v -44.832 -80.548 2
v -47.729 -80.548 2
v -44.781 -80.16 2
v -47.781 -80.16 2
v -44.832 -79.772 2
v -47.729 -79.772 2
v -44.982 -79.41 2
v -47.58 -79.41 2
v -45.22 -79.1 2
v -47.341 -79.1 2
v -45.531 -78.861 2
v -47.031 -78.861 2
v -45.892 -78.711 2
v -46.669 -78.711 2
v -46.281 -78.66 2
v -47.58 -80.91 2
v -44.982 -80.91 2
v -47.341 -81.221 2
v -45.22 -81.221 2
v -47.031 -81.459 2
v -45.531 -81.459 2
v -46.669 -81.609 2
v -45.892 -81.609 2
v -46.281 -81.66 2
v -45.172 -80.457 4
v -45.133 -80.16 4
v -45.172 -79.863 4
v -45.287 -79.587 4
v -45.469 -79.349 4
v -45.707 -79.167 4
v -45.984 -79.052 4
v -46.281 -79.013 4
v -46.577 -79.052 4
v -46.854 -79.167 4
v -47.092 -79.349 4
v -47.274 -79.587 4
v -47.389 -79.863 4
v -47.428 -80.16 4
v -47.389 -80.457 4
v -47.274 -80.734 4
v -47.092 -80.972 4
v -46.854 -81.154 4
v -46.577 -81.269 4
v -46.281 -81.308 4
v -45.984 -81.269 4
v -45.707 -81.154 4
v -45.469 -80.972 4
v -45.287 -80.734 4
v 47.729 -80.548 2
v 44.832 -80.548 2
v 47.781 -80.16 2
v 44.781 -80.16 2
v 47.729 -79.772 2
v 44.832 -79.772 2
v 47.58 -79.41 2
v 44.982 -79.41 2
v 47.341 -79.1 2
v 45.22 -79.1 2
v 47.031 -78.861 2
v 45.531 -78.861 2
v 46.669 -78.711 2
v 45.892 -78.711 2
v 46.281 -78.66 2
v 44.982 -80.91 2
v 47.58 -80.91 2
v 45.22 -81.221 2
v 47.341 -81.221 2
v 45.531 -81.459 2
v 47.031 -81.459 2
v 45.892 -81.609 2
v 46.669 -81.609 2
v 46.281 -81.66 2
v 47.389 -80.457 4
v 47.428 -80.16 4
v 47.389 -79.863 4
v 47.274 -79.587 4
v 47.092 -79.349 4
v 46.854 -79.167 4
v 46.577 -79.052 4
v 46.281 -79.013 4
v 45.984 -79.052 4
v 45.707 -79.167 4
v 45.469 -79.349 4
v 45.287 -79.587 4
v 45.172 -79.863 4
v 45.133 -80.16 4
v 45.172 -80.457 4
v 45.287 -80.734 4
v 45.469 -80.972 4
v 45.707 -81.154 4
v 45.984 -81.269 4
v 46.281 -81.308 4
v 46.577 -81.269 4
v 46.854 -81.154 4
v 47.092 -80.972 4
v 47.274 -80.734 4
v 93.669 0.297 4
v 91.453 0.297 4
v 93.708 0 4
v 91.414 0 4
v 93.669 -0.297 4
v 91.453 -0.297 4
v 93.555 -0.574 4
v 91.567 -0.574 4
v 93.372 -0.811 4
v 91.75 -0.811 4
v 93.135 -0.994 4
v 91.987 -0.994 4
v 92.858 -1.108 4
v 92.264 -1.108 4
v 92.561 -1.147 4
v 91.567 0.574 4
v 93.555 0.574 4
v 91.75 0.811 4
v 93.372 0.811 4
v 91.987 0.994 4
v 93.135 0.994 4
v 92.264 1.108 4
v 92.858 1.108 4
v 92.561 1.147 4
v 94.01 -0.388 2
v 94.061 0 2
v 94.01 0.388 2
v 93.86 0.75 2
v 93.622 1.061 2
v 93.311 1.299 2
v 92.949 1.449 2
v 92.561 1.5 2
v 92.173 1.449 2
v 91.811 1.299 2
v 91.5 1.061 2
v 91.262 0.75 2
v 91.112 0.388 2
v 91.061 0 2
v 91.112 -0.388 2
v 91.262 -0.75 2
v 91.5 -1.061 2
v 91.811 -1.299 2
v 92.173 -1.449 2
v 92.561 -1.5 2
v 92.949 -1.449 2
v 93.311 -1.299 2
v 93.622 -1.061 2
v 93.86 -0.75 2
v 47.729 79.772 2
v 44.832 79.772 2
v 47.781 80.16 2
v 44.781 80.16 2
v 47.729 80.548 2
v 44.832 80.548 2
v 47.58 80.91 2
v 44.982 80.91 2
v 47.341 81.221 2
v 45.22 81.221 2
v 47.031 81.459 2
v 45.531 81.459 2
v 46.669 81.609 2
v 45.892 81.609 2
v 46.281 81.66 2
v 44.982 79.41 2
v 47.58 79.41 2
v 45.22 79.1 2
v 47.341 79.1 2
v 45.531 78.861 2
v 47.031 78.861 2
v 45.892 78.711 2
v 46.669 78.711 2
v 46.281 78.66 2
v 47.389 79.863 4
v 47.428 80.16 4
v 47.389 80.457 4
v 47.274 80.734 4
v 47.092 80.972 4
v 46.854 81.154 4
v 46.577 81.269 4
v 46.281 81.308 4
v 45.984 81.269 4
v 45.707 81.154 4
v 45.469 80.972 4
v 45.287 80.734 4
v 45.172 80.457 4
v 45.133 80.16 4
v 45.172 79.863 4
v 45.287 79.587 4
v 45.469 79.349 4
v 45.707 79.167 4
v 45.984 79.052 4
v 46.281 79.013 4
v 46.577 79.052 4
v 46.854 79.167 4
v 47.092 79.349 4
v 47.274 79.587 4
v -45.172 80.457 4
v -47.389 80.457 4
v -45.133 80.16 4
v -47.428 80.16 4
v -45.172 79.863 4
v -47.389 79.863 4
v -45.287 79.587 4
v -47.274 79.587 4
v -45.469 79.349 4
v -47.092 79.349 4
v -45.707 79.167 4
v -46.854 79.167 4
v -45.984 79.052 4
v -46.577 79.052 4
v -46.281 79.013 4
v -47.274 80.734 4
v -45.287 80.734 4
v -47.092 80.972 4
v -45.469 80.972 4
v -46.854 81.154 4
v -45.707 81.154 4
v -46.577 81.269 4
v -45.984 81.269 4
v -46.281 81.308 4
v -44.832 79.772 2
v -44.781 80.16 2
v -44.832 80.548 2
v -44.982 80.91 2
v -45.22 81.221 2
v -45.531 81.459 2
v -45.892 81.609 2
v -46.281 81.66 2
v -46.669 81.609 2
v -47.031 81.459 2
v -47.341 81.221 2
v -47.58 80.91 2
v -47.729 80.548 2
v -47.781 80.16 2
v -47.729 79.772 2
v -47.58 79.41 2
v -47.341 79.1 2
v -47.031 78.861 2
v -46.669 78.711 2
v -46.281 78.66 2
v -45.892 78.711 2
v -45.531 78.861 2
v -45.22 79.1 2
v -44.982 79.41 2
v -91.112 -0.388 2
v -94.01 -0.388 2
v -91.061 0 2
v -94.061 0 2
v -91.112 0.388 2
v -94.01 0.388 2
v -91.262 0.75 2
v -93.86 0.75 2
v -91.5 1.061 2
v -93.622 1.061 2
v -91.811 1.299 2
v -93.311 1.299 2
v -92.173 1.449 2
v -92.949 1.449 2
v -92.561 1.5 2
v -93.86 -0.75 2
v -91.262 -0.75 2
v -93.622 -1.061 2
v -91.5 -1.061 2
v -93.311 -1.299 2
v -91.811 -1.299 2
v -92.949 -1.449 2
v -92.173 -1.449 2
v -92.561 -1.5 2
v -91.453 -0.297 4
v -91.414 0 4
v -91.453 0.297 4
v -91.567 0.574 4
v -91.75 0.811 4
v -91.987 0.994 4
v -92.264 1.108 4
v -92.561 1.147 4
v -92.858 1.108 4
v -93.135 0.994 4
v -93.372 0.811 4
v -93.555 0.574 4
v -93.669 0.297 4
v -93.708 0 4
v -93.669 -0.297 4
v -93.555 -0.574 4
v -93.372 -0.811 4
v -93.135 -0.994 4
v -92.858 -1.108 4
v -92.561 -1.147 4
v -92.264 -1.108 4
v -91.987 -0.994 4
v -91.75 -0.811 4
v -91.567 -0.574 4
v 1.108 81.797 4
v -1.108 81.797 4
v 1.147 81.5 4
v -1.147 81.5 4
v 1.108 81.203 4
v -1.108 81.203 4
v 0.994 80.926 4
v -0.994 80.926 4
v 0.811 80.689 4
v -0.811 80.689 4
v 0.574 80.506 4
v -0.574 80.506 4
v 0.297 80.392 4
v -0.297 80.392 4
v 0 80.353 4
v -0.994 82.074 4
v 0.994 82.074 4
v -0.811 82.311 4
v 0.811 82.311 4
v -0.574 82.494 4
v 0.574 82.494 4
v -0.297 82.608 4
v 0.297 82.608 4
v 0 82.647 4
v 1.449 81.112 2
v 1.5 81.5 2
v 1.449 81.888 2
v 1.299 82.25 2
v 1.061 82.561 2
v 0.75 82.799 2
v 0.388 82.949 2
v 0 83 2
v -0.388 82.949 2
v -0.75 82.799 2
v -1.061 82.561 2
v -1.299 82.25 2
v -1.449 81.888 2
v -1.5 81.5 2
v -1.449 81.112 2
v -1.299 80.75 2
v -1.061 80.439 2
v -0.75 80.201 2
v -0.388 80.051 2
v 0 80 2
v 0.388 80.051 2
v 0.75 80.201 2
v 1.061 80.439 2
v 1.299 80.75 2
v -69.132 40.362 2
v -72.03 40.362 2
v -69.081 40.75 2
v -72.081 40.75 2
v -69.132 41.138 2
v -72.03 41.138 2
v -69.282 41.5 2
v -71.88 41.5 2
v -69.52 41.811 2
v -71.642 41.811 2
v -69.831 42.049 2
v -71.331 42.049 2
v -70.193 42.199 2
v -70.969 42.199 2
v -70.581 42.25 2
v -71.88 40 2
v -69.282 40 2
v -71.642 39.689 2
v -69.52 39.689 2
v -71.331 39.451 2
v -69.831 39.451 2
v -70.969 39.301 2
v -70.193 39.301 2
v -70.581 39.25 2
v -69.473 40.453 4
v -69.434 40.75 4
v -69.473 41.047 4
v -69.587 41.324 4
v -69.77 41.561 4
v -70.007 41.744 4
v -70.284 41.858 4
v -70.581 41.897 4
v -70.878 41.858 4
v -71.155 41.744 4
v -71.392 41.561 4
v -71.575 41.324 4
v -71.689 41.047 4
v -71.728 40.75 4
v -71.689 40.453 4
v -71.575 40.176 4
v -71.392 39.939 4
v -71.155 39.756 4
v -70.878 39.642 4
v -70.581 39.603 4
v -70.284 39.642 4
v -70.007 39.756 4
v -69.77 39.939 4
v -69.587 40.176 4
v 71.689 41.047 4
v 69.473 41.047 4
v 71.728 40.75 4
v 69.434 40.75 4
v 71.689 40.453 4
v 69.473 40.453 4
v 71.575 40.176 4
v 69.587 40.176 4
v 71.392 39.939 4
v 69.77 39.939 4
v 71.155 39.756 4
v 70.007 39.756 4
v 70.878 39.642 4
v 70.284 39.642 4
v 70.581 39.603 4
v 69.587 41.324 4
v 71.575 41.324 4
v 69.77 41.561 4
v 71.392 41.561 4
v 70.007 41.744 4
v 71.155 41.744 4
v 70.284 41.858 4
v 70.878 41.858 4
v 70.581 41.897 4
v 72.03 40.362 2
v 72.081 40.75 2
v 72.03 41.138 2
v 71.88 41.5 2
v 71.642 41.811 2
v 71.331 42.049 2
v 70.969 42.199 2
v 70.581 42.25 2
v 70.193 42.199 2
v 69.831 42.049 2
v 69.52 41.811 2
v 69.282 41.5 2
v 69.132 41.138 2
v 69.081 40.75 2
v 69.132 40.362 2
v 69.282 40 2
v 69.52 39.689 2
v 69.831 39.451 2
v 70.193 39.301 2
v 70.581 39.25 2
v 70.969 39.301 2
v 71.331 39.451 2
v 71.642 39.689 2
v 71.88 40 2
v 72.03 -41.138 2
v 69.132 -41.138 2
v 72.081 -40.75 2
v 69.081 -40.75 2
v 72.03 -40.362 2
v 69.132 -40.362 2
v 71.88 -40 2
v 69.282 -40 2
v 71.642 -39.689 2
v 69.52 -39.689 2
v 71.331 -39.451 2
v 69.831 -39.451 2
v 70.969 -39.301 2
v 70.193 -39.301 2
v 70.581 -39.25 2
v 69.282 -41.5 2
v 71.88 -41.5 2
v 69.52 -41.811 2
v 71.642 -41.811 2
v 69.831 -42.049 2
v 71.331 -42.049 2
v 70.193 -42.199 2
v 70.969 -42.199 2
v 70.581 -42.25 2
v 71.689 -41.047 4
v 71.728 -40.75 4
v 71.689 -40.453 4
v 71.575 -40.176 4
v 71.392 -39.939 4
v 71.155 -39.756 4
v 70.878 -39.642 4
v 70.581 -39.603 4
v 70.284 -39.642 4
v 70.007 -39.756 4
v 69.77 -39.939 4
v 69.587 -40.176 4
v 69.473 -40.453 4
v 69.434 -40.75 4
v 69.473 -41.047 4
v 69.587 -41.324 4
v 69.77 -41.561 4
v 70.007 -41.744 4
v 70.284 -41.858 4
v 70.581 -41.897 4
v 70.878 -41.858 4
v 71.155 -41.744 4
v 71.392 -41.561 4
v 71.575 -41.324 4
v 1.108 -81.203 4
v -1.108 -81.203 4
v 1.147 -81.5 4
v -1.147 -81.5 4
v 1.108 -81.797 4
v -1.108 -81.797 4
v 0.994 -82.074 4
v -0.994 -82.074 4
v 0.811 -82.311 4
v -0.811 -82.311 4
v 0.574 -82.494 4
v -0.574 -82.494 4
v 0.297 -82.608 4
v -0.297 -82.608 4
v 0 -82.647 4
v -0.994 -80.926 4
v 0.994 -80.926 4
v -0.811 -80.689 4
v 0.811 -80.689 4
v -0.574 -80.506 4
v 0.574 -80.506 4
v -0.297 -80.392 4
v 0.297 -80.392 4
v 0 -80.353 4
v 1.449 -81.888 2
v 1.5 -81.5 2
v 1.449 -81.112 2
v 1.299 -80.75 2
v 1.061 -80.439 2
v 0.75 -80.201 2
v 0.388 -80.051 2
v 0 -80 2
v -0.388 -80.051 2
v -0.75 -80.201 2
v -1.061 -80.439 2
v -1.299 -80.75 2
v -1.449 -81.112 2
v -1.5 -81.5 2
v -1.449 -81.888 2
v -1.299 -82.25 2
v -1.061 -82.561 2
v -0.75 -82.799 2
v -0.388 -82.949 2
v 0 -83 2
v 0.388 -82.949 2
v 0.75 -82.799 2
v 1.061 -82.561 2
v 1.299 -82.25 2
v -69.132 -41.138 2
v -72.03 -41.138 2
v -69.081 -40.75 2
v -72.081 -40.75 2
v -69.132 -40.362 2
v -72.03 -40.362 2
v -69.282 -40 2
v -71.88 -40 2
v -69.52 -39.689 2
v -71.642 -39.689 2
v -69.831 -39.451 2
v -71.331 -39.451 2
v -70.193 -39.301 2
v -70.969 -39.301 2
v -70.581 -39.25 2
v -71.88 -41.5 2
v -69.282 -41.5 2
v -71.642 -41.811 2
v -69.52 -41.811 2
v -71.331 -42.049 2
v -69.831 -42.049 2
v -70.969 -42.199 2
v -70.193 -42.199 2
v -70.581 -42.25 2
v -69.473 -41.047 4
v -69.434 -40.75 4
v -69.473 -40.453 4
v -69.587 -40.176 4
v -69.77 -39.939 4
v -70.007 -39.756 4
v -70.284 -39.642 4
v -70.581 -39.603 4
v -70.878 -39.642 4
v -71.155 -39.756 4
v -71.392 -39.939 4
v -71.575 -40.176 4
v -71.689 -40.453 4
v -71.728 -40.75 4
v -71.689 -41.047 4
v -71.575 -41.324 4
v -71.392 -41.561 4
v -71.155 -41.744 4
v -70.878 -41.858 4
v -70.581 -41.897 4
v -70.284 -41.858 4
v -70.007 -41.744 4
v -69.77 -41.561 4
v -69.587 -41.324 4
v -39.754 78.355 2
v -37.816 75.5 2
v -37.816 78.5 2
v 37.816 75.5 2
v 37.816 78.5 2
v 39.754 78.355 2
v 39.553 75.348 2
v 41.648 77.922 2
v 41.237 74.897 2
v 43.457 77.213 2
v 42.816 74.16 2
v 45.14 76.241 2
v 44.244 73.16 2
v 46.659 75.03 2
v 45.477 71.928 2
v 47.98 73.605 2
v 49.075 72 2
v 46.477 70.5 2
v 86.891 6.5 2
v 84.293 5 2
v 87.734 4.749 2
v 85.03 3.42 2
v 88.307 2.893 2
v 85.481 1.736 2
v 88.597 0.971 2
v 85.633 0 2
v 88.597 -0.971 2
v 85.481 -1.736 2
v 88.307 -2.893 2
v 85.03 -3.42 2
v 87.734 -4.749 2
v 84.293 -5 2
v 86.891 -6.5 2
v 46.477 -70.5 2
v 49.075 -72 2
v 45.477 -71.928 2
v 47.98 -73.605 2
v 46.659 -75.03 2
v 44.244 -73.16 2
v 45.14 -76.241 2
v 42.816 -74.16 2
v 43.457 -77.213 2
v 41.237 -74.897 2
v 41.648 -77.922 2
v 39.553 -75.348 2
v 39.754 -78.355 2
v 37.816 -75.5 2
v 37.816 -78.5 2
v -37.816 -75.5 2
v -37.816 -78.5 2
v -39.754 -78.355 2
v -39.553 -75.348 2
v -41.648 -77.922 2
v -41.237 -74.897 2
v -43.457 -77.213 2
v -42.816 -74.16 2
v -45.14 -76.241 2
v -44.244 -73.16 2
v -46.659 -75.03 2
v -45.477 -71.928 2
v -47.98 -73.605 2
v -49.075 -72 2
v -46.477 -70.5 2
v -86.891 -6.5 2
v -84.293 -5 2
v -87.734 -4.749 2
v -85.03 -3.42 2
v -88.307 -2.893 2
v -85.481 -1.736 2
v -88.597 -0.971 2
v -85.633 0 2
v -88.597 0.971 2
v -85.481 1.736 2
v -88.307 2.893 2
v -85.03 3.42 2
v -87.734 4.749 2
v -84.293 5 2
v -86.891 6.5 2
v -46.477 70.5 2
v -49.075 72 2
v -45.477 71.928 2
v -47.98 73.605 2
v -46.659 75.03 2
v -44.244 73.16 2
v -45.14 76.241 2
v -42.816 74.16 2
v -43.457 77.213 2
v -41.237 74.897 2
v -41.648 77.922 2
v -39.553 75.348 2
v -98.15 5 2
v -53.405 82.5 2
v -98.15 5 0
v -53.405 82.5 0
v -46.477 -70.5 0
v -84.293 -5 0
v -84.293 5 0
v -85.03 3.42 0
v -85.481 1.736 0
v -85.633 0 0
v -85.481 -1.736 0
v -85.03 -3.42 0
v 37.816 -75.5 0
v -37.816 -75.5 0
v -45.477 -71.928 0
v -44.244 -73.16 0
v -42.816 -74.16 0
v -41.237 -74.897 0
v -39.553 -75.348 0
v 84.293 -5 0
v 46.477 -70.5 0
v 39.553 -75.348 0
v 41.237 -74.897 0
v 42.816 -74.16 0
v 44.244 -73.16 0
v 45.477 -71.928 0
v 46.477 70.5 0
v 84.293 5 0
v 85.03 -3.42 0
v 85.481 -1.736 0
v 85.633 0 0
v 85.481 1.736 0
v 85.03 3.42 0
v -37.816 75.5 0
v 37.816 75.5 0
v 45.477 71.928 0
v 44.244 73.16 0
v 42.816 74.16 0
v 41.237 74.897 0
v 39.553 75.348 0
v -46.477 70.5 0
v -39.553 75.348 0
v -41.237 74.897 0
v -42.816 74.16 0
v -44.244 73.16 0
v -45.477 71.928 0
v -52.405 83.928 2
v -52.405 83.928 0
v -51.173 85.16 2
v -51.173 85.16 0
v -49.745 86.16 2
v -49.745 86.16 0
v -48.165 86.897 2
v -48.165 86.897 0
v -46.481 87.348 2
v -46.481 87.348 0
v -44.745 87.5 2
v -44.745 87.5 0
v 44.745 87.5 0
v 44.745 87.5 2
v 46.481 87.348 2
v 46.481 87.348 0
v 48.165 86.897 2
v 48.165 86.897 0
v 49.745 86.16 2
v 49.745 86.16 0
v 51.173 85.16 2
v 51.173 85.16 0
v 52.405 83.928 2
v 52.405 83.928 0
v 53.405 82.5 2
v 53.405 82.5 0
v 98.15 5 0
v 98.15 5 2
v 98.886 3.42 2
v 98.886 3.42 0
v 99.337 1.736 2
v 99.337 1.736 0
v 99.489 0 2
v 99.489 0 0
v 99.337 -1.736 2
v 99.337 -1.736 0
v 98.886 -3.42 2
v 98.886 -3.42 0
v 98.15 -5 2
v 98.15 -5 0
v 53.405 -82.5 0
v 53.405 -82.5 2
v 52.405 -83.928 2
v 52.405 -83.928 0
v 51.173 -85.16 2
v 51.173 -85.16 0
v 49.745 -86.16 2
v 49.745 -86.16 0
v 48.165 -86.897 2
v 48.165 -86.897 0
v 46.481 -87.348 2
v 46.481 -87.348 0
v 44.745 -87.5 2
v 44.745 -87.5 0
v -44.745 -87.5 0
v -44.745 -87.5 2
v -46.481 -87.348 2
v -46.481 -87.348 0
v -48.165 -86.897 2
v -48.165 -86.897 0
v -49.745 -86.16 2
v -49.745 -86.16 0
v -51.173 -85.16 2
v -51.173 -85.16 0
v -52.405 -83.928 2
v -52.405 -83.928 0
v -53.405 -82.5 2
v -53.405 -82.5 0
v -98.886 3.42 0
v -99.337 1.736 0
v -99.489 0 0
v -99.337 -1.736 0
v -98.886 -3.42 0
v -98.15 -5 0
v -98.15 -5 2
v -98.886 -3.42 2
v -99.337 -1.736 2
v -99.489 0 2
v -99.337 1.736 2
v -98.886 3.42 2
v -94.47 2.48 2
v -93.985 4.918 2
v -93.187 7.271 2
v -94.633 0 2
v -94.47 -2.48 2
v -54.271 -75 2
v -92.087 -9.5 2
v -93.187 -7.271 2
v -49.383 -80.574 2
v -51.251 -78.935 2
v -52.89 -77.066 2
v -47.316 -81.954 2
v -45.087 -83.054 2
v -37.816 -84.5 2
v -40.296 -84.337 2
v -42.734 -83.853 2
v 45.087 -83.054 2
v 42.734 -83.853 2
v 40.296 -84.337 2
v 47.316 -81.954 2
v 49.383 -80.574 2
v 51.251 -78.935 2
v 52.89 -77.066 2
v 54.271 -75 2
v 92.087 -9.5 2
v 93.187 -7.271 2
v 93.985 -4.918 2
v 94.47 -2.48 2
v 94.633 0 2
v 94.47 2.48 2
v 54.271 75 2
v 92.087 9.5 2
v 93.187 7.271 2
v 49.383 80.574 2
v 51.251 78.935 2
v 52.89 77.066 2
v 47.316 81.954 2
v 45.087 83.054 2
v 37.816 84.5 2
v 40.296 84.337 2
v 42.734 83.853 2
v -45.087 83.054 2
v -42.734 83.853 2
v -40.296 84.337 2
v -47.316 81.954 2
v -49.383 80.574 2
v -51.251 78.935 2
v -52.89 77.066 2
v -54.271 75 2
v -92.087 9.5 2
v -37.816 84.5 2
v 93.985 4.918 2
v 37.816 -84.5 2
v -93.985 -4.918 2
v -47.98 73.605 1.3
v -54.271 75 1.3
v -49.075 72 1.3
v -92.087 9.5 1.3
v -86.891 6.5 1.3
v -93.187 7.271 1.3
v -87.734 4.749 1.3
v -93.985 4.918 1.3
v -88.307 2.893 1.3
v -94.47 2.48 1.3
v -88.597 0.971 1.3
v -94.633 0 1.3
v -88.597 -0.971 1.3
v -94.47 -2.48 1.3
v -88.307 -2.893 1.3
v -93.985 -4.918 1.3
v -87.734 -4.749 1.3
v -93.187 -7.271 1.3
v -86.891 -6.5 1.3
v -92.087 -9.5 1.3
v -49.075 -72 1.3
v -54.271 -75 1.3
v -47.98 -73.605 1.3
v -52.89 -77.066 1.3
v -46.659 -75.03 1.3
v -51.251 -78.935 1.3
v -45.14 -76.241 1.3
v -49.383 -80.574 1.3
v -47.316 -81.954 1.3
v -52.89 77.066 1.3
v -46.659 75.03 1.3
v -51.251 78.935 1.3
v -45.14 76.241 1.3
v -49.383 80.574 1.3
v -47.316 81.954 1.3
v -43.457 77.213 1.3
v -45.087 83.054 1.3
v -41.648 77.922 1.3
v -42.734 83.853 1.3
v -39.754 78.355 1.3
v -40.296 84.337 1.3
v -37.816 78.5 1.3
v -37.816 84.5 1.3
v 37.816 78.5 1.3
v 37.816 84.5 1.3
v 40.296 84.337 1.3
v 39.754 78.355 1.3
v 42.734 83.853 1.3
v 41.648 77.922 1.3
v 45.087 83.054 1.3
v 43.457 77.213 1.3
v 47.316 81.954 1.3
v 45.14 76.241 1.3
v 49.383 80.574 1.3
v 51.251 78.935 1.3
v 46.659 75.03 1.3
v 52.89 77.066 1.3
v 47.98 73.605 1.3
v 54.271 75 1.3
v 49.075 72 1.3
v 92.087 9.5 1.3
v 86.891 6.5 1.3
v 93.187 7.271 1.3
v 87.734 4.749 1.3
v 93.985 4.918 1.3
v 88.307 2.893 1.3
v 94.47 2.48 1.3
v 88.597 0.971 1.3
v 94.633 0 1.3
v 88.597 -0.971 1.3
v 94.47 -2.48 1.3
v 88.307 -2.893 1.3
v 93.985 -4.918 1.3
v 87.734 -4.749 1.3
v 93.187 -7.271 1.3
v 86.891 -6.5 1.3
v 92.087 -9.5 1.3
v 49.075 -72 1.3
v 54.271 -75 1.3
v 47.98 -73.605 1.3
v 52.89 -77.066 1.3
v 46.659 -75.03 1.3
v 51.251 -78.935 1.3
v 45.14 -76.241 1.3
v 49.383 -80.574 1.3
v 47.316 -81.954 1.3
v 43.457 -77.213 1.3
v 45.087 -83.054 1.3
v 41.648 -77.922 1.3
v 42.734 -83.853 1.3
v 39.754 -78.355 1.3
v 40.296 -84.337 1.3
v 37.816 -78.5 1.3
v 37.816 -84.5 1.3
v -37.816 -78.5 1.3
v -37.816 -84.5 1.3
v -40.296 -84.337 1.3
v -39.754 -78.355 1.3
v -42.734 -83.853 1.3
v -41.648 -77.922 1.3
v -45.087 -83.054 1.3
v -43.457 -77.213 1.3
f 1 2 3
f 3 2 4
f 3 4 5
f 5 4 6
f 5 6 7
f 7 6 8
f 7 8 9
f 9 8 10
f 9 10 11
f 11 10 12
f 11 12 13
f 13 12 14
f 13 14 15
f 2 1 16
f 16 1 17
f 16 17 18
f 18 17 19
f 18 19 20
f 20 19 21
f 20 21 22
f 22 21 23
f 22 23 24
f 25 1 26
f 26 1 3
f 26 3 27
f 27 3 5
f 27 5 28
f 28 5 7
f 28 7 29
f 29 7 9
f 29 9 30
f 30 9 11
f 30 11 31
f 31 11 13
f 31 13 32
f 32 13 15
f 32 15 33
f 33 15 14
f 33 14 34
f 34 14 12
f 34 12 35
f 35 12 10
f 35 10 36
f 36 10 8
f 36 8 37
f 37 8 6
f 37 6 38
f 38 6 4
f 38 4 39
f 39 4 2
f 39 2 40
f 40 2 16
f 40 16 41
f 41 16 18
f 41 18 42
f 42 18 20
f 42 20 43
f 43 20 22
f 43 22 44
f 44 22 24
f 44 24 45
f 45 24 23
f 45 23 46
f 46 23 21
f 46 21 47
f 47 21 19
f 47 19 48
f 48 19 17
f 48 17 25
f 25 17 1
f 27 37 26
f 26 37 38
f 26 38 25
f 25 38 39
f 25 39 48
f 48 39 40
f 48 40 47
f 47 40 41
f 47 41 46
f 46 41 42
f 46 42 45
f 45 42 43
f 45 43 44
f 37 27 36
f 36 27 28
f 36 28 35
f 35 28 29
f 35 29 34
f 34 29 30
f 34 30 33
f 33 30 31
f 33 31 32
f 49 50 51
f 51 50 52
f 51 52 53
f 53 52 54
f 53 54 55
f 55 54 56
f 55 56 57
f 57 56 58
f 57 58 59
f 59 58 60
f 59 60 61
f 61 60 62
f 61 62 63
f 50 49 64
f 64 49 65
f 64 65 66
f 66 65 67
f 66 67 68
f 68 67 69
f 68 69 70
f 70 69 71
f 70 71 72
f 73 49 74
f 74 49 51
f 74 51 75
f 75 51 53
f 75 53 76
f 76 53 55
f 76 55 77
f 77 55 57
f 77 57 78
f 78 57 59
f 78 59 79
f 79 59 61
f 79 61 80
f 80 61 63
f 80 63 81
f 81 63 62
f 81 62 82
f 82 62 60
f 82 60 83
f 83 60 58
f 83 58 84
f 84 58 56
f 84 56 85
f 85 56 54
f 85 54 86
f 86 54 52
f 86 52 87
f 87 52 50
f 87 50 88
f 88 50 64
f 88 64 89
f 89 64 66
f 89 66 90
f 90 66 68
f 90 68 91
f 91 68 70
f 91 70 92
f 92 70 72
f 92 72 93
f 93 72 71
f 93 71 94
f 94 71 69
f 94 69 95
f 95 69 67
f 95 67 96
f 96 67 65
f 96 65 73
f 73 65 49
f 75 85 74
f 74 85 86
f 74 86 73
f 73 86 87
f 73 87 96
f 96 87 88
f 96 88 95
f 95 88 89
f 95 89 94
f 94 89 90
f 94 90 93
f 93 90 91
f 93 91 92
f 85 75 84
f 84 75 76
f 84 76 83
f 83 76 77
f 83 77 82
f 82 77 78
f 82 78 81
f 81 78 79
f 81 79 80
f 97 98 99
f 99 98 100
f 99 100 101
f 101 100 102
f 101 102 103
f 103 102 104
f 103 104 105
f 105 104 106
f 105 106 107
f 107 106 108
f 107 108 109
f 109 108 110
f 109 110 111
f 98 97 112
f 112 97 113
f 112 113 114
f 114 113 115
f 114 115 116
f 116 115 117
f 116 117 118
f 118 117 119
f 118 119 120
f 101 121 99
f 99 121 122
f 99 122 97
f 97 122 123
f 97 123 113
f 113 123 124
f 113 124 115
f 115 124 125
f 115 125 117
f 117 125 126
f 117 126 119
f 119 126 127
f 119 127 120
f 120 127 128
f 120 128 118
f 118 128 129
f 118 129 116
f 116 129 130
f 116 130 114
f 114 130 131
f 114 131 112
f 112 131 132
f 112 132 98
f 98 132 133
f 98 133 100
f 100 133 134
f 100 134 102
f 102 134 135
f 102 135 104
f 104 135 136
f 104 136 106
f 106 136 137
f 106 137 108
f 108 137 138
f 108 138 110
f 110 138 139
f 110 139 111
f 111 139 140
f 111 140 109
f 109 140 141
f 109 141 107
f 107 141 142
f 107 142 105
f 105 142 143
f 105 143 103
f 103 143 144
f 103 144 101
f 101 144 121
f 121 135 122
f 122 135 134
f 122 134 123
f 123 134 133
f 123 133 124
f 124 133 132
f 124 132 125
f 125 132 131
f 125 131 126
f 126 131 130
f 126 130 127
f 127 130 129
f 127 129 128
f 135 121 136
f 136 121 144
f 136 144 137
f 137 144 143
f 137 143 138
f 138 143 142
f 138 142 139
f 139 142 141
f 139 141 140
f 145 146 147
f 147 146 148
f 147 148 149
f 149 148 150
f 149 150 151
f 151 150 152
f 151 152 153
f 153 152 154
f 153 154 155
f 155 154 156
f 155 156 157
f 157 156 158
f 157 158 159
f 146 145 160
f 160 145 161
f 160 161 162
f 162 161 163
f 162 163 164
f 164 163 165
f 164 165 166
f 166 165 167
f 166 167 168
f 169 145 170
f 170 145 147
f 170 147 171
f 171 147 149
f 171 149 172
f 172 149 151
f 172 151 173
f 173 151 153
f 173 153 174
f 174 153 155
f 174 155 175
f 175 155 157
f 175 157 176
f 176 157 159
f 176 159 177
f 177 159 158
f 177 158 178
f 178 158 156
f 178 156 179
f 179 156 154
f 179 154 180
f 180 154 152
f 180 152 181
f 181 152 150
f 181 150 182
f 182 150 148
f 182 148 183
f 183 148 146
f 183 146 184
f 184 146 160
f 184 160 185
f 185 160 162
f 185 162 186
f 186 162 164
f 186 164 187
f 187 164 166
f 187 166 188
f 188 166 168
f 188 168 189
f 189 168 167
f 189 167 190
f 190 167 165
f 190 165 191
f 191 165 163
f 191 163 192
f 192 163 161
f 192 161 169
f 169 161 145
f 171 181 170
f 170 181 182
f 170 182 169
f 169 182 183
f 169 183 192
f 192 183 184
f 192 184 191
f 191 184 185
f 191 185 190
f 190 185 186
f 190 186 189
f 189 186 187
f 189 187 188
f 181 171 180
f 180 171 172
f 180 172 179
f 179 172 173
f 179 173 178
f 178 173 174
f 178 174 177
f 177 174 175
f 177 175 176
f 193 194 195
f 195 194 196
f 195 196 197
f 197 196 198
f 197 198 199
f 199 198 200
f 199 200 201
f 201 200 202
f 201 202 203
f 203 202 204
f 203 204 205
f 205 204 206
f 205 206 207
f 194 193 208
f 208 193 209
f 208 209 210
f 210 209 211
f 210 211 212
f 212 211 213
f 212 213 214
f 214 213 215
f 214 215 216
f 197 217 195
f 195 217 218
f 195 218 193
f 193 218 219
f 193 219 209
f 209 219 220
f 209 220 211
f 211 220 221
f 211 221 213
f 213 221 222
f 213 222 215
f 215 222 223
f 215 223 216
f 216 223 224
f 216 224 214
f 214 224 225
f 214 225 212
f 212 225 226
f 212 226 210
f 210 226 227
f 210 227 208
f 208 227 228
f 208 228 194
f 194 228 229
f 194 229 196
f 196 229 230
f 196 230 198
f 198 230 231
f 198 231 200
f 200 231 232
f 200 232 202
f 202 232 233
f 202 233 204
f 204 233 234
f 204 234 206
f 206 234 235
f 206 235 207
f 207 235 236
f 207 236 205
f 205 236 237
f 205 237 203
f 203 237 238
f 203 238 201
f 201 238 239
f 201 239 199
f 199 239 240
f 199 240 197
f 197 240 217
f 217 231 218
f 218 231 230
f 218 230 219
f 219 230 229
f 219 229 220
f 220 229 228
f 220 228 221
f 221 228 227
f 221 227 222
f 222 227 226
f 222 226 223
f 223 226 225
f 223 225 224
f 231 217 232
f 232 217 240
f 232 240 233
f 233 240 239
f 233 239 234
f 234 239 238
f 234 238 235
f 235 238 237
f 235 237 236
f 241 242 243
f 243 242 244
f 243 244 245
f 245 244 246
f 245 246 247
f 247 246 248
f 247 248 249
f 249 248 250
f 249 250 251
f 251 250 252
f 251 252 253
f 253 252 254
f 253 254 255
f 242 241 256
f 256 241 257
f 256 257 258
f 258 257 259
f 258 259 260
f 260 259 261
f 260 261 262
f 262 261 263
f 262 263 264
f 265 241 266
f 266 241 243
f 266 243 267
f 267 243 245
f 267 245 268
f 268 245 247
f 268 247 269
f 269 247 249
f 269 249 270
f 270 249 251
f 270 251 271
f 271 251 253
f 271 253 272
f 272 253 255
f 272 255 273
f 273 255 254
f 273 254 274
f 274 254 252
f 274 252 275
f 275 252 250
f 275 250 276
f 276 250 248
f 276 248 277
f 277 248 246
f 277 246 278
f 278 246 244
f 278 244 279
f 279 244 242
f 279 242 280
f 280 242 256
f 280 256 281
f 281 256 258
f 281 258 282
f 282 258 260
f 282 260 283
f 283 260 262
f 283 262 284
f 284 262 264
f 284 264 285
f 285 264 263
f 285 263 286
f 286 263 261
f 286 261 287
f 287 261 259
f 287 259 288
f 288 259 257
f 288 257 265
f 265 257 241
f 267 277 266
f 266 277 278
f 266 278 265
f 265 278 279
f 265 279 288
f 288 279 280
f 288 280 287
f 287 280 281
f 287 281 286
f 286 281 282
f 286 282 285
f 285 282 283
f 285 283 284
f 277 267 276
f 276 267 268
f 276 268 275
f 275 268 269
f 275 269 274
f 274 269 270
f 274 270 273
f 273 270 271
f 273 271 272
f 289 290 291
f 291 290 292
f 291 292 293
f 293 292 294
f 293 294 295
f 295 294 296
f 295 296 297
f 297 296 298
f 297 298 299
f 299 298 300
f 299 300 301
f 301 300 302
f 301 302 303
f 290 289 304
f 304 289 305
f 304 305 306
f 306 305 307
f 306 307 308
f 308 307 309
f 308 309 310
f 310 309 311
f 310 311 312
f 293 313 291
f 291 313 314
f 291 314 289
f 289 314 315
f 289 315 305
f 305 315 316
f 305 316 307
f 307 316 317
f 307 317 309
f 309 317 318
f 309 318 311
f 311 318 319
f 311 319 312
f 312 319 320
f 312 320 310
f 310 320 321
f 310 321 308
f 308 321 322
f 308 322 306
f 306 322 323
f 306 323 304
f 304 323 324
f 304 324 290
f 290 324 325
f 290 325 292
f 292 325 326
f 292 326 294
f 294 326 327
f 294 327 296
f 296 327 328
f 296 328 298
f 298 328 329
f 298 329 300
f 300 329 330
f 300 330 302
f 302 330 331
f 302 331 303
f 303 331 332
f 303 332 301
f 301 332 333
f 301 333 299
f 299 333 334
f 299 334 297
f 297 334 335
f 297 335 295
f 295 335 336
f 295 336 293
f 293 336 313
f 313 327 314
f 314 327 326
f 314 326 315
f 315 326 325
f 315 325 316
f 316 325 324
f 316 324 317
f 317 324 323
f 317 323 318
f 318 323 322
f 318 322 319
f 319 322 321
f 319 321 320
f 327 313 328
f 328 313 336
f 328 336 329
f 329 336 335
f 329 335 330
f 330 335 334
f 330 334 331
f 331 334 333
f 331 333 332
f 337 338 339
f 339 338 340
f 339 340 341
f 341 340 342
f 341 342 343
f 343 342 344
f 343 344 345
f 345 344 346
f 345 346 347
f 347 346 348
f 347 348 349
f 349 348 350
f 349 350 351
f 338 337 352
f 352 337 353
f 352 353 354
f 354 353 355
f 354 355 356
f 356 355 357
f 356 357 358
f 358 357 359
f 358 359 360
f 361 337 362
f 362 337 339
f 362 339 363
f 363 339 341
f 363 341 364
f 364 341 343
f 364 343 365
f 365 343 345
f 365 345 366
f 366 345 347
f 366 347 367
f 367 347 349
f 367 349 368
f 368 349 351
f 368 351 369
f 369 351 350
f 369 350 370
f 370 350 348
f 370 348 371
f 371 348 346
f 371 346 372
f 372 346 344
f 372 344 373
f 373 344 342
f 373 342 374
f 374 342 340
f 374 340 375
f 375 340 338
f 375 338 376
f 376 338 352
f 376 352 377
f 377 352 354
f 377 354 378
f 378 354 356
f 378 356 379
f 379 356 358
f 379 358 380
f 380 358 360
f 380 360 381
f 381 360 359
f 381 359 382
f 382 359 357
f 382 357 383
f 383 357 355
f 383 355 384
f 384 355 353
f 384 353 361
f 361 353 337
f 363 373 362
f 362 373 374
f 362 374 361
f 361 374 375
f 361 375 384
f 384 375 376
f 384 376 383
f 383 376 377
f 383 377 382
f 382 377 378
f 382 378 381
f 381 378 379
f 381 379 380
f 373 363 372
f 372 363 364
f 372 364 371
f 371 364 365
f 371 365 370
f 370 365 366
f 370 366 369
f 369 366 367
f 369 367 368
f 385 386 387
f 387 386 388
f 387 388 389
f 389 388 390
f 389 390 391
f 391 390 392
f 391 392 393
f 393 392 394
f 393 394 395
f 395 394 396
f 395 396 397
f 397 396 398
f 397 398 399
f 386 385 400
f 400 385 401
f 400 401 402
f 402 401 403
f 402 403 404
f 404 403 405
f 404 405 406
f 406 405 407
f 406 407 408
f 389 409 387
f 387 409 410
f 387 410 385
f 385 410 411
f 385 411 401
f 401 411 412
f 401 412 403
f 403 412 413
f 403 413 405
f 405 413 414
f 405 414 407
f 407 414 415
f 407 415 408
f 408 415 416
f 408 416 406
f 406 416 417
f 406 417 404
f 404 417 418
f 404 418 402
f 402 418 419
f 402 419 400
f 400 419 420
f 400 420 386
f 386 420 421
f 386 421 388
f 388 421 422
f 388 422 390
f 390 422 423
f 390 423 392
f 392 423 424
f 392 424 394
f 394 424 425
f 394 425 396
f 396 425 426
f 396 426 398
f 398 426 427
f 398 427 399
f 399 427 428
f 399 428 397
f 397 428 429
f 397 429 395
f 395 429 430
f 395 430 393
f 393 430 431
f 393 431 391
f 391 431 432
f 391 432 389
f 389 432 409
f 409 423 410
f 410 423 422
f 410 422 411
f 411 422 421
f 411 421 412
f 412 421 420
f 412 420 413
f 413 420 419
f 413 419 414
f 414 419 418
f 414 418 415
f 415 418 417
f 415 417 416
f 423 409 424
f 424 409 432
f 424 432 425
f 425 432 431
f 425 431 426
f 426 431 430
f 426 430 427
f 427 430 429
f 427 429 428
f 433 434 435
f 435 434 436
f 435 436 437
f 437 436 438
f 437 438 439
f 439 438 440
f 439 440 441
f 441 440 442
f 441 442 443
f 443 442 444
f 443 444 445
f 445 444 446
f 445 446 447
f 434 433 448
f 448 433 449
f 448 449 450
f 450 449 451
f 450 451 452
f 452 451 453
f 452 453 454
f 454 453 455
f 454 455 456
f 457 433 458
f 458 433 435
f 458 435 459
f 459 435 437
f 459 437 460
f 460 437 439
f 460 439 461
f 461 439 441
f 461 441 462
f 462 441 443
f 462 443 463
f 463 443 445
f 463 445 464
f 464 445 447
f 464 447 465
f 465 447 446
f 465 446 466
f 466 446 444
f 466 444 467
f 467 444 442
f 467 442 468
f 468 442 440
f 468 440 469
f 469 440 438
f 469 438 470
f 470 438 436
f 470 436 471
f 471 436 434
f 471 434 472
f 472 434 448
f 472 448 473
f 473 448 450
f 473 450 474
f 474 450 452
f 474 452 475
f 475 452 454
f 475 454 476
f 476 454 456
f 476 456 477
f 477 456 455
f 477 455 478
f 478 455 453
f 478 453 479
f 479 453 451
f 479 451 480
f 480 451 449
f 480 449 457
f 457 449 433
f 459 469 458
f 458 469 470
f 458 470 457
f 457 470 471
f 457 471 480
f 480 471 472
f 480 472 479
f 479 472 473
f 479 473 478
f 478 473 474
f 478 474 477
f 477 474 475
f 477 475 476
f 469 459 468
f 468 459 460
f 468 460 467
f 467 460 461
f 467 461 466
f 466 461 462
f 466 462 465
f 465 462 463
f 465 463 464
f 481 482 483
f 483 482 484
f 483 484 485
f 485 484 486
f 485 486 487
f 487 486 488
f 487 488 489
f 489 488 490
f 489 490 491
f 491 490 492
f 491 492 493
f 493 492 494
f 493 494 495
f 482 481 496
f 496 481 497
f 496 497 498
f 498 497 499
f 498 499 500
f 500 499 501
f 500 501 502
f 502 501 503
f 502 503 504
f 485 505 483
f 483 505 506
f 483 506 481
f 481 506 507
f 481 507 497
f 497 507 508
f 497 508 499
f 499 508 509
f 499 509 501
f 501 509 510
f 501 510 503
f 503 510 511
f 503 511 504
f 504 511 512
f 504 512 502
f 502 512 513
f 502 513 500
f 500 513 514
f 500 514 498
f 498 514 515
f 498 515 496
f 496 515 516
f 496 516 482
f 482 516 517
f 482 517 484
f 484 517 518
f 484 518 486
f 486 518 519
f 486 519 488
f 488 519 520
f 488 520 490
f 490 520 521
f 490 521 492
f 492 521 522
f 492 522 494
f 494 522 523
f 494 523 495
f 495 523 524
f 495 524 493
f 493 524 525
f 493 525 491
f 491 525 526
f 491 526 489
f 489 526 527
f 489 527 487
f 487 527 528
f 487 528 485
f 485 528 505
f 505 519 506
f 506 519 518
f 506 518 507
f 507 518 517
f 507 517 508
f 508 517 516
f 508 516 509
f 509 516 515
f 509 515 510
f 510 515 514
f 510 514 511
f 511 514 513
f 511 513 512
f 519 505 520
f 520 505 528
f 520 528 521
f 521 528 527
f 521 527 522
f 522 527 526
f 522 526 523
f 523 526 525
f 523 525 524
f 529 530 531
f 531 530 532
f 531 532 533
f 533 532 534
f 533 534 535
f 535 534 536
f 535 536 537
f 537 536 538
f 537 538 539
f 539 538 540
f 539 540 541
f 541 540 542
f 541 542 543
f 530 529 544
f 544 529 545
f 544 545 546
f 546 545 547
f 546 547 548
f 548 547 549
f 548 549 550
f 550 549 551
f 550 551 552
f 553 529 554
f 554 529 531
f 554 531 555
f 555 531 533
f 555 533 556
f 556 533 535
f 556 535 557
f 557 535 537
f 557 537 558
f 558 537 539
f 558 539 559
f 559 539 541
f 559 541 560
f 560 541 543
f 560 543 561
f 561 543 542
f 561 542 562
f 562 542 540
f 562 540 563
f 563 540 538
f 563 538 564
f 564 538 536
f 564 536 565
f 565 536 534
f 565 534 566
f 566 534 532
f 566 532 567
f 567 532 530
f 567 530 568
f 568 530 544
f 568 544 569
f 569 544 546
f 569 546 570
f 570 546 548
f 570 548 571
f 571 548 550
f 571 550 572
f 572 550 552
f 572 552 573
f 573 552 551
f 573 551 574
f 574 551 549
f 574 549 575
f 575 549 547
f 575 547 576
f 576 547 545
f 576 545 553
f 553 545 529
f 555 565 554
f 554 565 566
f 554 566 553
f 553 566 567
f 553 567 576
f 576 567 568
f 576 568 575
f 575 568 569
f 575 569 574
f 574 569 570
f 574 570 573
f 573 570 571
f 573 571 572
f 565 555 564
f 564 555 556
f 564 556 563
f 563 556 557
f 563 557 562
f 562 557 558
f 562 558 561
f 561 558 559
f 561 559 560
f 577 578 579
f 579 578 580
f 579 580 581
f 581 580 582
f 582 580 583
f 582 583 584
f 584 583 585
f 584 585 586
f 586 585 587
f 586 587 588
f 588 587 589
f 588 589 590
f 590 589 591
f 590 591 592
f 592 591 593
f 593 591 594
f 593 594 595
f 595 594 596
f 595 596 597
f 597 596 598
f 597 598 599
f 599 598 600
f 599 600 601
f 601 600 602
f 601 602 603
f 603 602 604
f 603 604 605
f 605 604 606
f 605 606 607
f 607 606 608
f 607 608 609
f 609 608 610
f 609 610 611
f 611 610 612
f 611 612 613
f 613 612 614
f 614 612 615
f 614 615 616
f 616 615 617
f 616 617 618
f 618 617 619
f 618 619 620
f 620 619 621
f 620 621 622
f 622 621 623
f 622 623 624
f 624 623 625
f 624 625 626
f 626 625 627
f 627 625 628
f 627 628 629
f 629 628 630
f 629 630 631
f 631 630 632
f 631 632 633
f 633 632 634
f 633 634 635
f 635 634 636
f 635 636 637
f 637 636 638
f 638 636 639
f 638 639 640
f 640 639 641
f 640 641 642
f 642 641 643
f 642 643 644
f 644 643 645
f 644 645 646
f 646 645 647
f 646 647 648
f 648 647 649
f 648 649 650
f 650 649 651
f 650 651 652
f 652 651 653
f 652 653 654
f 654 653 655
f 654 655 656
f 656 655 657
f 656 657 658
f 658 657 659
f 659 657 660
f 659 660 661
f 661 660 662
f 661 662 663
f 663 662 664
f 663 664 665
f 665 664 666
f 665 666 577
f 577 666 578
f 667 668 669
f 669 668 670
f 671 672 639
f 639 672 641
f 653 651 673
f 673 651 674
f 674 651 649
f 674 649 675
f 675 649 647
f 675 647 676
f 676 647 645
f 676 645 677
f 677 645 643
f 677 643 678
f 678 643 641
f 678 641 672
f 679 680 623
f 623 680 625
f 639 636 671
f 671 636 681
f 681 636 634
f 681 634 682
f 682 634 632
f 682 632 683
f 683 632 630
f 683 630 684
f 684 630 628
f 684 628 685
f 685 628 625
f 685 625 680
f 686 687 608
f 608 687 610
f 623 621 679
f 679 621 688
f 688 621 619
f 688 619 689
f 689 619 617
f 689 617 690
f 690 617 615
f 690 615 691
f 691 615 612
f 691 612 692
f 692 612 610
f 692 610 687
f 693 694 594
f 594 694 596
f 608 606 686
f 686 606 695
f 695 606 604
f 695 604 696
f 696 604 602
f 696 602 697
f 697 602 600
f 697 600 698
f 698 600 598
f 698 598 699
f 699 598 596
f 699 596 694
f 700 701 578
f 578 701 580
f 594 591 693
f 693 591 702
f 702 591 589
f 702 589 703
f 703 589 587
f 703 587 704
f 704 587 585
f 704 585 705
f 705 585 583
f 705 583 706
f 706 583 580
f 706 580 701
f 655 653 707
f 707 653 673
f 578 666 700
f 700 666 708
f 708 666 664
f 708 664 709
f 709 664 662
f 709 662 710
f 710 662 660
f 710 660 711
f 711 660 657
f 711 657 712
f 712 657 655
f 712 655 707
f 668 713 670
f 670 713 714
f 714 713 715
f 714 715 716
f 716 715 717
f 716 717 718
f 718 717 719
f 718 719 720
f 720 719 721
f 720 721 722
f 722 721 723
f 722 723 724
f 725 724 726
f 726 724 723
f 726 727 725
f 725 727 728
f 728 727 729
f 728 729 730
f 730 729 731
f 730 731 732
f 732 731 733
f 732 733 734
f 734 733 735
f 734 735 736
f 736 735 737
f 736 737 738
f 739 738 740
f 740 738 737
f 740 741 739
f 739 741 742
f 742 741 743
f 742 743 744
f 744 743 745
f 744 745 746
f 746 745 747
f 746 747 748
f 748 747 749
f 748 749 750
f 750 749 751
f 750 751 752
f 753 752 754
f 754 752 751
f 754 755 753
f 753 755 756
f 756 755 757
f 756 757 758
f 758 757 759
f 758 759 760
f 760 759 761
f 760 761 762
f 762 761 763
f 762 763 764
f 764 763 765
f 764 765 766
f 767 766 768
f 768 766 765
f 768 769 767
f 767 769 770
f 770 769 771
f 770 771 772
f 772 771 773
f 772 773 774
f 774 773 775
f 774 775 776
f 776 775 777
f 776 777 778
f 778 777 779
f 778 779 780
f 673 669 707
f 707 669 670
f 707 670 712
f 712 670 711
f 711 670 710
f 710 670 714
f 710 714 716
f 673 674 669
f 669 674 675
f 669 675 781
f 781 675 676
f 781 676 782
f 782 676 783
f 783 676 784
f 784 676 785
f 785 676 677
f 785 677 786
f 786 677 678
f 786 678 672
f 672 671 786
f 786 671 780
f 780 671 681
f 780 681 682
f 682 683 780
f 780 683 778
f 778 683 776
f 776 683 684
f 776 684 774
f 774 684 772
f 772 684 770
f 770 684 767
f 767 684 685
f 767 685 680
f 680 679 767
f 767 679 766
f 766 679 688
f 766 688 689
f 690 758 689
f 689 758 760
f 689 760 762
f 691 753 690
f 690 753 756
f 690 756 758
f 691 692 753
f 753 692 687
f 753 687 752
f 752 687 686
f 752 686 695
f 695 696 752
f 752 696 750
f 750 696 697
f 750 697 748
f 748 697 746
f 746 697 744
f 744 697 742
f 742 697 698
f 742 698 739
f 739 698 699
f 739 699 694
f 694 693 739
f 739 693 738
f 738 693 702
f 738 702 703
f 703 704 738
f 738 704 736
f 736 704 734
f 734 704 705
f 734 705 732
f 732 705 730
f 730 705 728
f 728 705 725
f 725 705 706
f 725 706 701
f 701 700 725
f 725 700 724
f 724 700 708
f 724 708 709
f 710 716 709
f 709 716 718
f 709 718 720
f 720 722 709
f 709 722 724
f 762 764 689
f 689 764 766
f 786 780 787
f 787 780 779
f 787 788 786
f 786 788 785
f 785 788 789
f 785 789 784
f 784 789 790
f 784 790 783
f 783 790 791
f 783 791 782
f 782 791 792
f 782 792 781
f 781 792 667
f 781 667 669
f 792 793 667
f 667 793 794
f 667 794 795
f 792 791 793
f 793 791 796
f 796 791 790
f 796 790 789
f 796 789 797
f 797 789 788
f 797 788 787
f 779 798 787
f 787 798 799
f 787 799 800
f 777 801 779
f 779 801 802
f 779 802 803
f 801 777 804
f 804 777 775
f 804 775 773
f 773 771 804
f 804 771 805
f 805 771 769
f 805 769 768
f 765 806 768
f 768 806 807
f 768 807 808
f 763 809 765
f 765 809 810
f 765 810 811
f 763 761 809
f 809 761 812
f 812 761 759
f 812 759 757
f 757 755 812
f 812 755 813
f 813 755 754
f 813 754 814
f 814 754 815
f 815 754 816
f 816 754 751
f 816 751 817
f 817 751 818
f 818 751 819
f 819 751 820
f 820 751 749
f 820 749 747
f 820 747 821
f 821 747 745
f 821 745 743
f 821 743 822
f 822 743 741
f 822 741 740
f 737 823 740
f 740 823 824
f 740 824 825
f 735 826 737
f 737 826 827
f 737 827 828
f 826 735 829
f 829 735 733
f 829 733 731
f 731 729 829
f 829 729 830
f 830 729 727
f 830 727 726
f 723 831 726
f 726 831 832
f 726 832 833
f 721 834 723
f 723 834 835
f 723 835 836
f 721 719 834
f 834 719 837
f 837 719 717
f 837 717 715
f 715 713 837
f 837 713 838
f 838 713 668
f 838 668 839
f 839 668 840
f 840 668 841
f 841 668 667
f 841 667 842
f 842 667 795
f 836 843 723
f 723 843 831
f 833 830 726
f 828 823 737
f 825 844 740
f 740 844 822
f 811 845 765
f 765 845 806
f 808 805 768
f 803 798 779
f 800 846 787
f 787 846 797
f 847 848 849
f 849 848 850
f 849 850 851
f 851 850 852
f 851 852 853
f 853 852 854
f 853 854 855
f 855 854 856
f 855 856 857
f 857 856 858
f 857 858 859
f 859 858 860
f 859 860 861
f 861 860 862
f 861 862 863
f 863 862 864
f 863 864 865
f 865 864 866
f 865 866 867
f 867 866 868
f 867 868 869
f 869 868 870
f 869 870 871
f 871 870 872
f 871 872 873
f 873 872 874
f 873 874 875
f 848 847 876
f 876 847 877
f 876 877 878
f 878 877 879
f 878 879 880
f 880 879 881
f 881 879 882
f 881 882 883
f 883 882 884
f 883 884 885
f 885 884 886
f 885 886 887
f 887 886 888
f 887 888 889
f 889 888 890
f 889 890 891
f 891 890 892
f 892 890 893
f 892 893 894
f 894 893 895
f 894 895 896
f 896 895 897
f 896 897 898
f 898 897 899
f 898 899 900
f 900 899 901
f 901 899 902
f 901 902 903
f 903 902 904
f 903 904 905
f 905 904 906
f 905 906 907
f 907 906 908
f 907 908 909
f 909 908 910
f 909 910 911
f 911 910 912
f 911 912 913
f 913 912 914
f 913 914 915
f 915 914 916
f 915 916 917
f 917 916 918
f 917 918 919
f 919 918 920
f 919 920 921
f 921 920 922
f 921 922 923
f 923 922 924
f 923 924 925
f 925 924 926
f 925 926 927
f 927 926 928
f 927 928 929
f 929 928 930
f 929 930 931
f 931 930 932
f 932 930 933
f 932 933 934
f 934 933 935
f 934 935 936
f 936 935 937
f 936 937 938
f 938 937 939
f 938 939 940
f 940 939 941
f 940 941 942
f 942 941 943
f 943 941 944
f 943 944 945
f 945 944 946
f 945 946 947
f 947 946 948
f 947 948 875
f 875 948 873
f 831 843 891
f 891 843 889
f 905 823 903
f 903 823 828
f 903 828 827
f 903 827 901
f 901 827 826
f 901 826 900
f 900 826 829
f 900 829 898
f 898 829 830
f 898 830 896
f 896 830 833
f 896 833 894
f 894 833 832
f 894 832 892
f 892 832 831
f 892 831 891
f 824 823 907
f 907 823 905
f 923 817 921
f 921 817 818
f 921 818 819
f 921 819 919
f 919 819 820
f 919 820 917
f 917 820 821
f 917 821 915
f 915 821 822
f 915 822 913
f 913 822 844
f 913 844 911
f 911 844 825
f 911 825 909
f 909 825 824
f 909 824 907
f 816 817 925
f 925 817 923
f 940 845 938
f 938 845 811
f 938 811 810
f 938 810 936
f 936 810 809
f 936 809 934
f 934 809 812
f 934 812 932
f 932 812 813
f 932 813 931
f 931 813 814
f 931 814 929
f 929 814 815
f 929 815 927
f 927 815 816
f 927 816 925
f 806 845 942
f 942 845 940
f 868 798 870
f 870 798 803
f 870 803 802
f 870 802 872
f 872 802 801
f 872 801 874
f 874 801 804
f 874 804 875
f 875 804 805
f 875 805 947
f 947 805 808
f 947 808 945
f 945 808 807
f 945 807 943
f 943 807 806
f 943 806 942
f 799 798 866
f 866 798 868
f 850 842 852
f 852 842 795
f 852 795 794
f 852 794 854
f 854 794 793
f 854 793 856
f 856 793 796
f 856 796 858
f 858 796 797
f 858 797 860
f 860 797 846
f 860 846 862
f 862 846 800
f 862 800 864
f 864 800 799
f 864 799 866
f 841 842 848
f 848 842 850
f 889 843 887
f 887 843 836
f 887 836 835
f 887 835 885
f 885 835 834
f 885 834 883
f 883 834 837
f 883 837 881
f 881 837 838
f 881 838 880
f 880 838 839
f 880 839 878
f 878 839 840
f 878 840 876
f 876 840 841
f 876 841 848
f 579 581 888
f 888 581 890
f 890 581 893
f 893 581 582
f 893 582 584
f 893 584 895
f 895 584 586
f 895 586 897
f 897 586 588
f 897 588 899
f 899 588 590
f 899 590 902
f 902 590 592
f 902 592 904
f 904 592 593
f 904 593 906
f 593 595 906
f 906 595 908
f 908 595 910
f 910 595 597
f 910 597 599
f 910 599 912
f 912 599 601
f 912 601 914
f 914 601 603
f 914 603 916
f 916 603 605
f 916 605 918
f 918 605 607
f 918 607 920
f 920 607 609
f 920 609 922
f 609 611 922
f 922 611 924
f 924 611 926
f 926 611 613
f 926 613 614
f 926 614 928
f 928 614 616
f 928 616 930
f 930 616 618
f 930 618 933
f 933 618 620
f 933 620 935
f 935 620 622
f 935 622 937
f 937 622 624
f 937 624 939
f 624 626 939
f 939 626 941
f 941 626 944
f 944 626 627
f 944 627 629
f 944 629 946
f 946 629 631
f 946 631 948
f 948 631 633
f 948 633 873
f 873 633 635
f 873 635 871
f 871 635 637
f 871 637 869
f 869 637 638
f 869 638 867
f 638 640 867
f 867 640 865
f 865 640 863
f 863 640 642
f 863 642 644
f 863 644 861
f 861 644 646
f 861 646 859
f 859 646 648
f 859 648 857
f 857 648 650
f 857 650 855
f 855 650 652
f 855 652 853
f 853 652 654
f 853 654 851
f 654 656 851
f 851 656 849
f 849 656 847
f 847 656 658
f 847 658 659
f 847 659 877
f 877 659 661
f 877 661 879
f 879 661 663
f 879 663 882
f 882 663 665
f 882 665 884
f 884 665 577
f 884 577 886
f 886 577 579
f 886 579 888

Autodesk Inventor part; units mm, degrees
ref_plane "YZ Plane" through (0, 0, 0) normal (1, 0, 0) x (0, 1, 0)
ref_plane "XZ Plane" through (0, 0, 0) normal (0, 1, 0) x (-1, 0, 0)
ref_plane "XY Plane" through (0, 0, 0) normal (0, 0, 1) x (1, 0, 0)
sketch "Sketch1" plane through (0, 0, 0) normal (0, 0, 1) x (1, 0, 0)
  line L0 (50.5181, -87.5) -> (-50.5181, -87.5)
  line L1 (-50.5181, -87.5) -> (-101.0363, 0)
  line L2 (-101.0363, 0) -> (-50.5181, 87.5)
  line L3 (-50.5181, 87.5) -> (50.5181, 87.5)
  line L4 (50.5181, 87.5) -> (101.0363, 0)
  line L5 (101.0363, 0) -> (50.5181, -87.5)
  point P0 (0, 0)
  point P1 (0, 0)
  dimension "d0" = 175
extrude "Extrusion1" add sketch "Sketch1" along normal blind 2
sketch "Sketch7" plane through (0, 0, 2) normal (0, 0, 1) x (1, 0, 0)
  line L0 (-50.5181, -87.5) -> (50.5181, -87.5) projected
  line L1 (50.5181, -87.5) -> (101.0363, 0) projected
  line L2 (101.0363, 0) -> (50.5181, 87.5) projected
  line L3 (50.5181, 87.5) -> (-50.5181, 87.5) projected
  line L4 (-50.5181, 87.5) -> (-101.0363, 0) projected
  line L5 (-101.0363, 0) -> (-50.5181, -87.5) projected
  line L6 (-43.5899, 75.5) -> (43.5899, 75.5)
  line L7 (43.5899, 75.5) -> (87.1799, 0)
  line L8 (87.1799, 0) -> (43.5899, -75.5)
  line L9 (43.5899, -75.5) -> (-43.5899, -75.5)
  line L10 (-43.5899, -75.5) -> (-87.1799, 0)
  line L11 (-87.1799, 0) -> (-43.5899, 75.5)
  dimension "d26" = 12
extrude "Extrusion6" cut sketch "Sketch7" against normal blind 7 contours L6 L7 L8 L9 L10 L11
fillet "Fillet2" radius 10 6 edges at (-87.1799, 0, 1) (-43.5899, -75.5, 1) (43.5899, -75.5, 1) (87.1799, 0, 1) (43.5899, 75.5, 1) (-43.5899, 75.5, 1)
fillet "Fillet3" radius 10 6 edges at (-50.5181, 87.5, 1) (50.5181, 87.5, 1) (101.0363, 0, 1) (50.5181, -87.5, 1) (-50.5181, -87.5, 1) (-101.0363, 0, 1)
sketch "Sketch9" plane through (0, 0, 2) normal (0, 0, 1) x (1, 0, 0)
  arc A0 (-98.1495, 5) -> (-98.1495, -5) centre (-89.4893, 0) ccw projected
  line L0 (-98.1495, -5) -> (-53.4049, -82.5) projected
  arc A1 (-53.4049, -82.5) -> (-44.7446, -87.5) centre (-44.7446, -77.5) ccw projected
  line L1 (-44.7446, -87.5) -> (44.7446, -87.5) projected
  arc A2 (44.7446, -87.5) -> (53.4049, -82.5) centre (44.7446, -77.5) ccw projected
  line L2 (53.4049, -82.5) -> (98.1495, -5) projected
  arc A3 (98.1495, -5) -> (98.1495, 5) centre (89.4893, 0) ccw projected
  line L3 (98.1495, 5) -> (53.4049, 82.5) projected
  arc A4 (53.4049, 82.5) -> (44.7446, 87.5) centre (44.7446, 77.5) ccw projected
  line L4 (44.7446, 87.5) -> (-44.7446, 87.5) projected
  arc A5 (-44.7446, 87.5) -> (-53.4049, 82.5) centre (-44.7446, 77.5) ccw projected
  line L5 (-53.4049, 82.5) -> (-98.1495, 5) projected
  line L6 (-84.2931, 5) -> (-46.4767, 70.5) projected
  arc A6 (-37.8164, 75.5) -> (-46.4767, 70.5) centre (-37.8164, 65.5) ccw projected
  line L7 (-37.8164, 75.5) -> (37.8164, 75.5) projected
  arc A7 (46.4767, 70.5) -> (37.8164, 75.5) centre (37.8164, 65.5) ccw projected
  line L8 (46.4767, 70.5) -> (84.2931, 5) projected
  arc A8 (84.2931, -5) -> (84.2931, 5) centre (75.6329, 0) ccw projected
  line L9 (84.2931, -5) -> (46.4767, -70.5) projected
  arc A9 (37.8164, -75.5) -> (46.4767, -70.5) centre (37.8164, -65.5) ccw projected
  line L10 (37.8164, -75.5) -> (-37.8164, -75.5) projected
  arc A10 (-46.4767, -70.5) -> (-37.8164, -75.5) centre (-37.8164, -65.5) ccw projected
  line L11 (-46.4767, -70.5) -> (-84.2931, -5) projected
  arc A11 (-84.2931, 5) -> (-84.2931, -5) centre (-75.6329, 0) ccw projected
  line L12 (-85.6329, 0) -> (-99.4893, 0) construction
  line L13 (-75.7772, 43.75) -> (-65.3849, 37.75) construction
  line L14 (-84.2931, 5) -> (-46.4767, 70.5) projected
  circle A12 centre (0, 81.5) radius 1.5
  circle A13 centre (-70.5811, 40.75) radius 1.5
  circle A14 centre (-92.5611, 0) radius 1.5
  circle A15 centre (70.5811, 40.75) radius 1.5
  circle A16 centre (0, 81.5) radius 1.5
  circle A17 centre (-46.2805, 80.1603) radius 1.5
  circle A18 centre (70.5811, -40.75) radius 1.5
  circle A19 centre (70.5811, 40.75) radius 1.5
  circle A20 centre (46.2805, 80.1603) radius 1.5
  circle A21 centre (0, -81.5) radius 1.5
  circle A22 centre (70.5811, -40.75) radius 1.5
  circle A23 centre (92.5611, 0) radius 1.5
  circle A24 centre (-70.5811, -40.75) radius 1.5
  circle A25 centre (0, -81.5) radius 1.5
  circle A26 centre (46.2805, -80.1603) radius 1.5
  circle A27 centre (-70.5811, 40.75) radius 1.5
  circle A28 centre (-70.5811, -40.75) radius 1.5
  circle A29 centre (-46.2805, -80.1603) radius 1.5
  point P0 (0, 0)
  point P1 (-70.5811, 40.75)
  dimension "d44" = 3
  dimension "d58" = 360
extrude "Extrusion8" add sketch "Sketch9" along normal blind 2 draft -10 contours A12 | A13 | A14 | A15 | A17 | A18 | A20 | A21 | A23 | A24 | A26 | A29
sketch "Sketch10" plane through (0, 0, 2) normal (0, 0, 1) x (1, 0, 0)
  arc A0 (-98.1495, 5) -> (-98.1495, -5) centre (-89.4893, 0) ccw projected
  line L0 (-98.1495, -5) -> (-53.4049, -82.5) projected
  arc A1 (-53.4049, -82.5) -> (-44.7446, -87.5) centre (-44.7446, -77.5) ccw projected
  line L1 (-44.7446, -87.5) -> (44.7446, -87.5) projected
  arc A2 (44.7446, -87.5) -> (53.4049, -82.5) centre (44.7446, -77.5) ccw projected
  line L2 (53.4049, -82.5) -> (98.1495, -5) projected
  arc A3 (98.1495, -5) -> (98.1495, 5) centre (89.4893, 0) ccw projected
  line L3 (98.1495, 5) -> (53.4049, 82.5) projected
  arc A4 (53.4049, 82.5) -> (44.7446, 87.5) centre (44.7446, 77.5) ccw projected
  line L4 (44.7446, 87.5) -> (-44.7446, 87.5) projected
  arc A5 (-44.7446, 87.5) -> (-53.4049, 82.5) centre (-44.7446, 77.5) ccw projected
  line L5 (-53.4049, 82.5) -> (-98.1495, 5) projected
  line L6 (-84.2931, 5) -> (-46.4767, 70.5) projected
  arc A6 (-37.8164, 75.5) -> (-46.4767, 70.5) centre (-37.8164, 65.5) ccw projected
  line L7 (-37.8164, 75.5) -> (37.8164, 75.5) projected
  arc A7 (46.4767, 70.5) -> (37.8164, 75.5) centre (37.8164, 65.5) ccw projected
  line L8 (46.4767, 70.5) -> (84.2931, 5) projected
  arc A8 (84.2931, -5) -> (84.2931, 5) centre (75.6329, 0) ccw projected
  line L9 (84.2931, -5) -> (46.4767, -70.5) projected
  arc A9 (37.8164, -75.5) -> (46.4767, -70.5) centre (37.8164, -65.5) ccw projected
  line L10 (37.8164, -75.5) -> (-37.8164, -75.5) projected
  arc A10 (-46.4767, -70.5) -> (-37.8164, -75.5) centre (-37.8164, -65.5) ccw projected
  line L11 (-46.4767, -70.5) -> (-84.2931, -5) projected
  arc A11 (-84.2931, 5) -> (-84.2931, -5) centre (-75.6329, 0) ccw projected
  line L12 (37.8164, 78.5) -> (-37.8164, 78.5)
  arc A12 (-37.8164, 78.5) -> (-49.0748, 72) centre (-37.8164, 65.5) ccw
  line L13 (-49.0748, 72) -> (-86.8912, 6.5)
  arc A13 (-86.8912, 6.5) -> (-86.8912, -6.5) centre (-75.6329, 0) ccw
  line L14 (-86.8912, -6.5) -> (-49.0748, -72)
  arc A14 (-49.0748, -72) -> (-37.8164, -78.5) centre (-37.8164, -65.5) ccw
  line L15 (-37.8164, -78.5) -> (37.8164, -78.5)
  arc A15 (37.8164, -78.5) -> (49.0748, -72) centre (37.8164, -65.5) ccw
  line L16 (49.0748, -72) -> (86.8912, -6.5)
  arc A16 (86.8912, -6.5) -> (86.8912, 6.5) centre (75.6329, 0) ccw
  line L17 (86.8912, 6.5) -> (49.0748, 72)
  arc A17 (49.0748, 72) -> (37.8164, 78.5) centre (37.8164, 65.5) ccw
  line L18 (-37.8164, 84.5) -> (37.8164, 84.5)
  arc A18 (54.2709, 75) -> (37.8164, 84.5) centre (37.8164, 65.5) ccw
  line L19 (54.2709, 75) -> (92.0874, 9.5)
  arc A19 (92.0874, -9.5) -> (92.0874, 9.5) centre (75.6329, 0) ccw
  line L20 (92.0874, -9.5) -> (54.2709, -75)
  arc A20 (37.8164, -84.5) -> (54.2709, -75) centre (37.8164, -65.5) ccw
  line L21 (37.8164, -84.5) -> (-37.8164, -84.5)
  arc A21 (-54.2709, -75) -> (-37.8164, -84.5) centre (-37.8164, -65.5) ccw
  line L22 (-54.2709, -75) -> (-92.0874, -9.5)
  arc A22 (-92.0874, 9.5) -> (-92.0874, -9.5) centre (-75.6329, 0) ccw
  line L23 (-92.0874, 9.5) -> (-54.2709, 75)
  arc A23 (-37.8164, 84.5) -> (-54.2709, 75) centre (-37.8164, 65.5) ccw
  point P0 (0, 0)
  dimension "d52" = 3
  dimension "d53" = 6
extrude "Extrusion9" cut sketch "Sketch10" against normal blind 0.7 contours L18 A18 L19 A19 L20 A20 L21 A21 L22 A22 L23 A23
properties part number "Flat Placeholder v1 - 175 - 12mm rim"
